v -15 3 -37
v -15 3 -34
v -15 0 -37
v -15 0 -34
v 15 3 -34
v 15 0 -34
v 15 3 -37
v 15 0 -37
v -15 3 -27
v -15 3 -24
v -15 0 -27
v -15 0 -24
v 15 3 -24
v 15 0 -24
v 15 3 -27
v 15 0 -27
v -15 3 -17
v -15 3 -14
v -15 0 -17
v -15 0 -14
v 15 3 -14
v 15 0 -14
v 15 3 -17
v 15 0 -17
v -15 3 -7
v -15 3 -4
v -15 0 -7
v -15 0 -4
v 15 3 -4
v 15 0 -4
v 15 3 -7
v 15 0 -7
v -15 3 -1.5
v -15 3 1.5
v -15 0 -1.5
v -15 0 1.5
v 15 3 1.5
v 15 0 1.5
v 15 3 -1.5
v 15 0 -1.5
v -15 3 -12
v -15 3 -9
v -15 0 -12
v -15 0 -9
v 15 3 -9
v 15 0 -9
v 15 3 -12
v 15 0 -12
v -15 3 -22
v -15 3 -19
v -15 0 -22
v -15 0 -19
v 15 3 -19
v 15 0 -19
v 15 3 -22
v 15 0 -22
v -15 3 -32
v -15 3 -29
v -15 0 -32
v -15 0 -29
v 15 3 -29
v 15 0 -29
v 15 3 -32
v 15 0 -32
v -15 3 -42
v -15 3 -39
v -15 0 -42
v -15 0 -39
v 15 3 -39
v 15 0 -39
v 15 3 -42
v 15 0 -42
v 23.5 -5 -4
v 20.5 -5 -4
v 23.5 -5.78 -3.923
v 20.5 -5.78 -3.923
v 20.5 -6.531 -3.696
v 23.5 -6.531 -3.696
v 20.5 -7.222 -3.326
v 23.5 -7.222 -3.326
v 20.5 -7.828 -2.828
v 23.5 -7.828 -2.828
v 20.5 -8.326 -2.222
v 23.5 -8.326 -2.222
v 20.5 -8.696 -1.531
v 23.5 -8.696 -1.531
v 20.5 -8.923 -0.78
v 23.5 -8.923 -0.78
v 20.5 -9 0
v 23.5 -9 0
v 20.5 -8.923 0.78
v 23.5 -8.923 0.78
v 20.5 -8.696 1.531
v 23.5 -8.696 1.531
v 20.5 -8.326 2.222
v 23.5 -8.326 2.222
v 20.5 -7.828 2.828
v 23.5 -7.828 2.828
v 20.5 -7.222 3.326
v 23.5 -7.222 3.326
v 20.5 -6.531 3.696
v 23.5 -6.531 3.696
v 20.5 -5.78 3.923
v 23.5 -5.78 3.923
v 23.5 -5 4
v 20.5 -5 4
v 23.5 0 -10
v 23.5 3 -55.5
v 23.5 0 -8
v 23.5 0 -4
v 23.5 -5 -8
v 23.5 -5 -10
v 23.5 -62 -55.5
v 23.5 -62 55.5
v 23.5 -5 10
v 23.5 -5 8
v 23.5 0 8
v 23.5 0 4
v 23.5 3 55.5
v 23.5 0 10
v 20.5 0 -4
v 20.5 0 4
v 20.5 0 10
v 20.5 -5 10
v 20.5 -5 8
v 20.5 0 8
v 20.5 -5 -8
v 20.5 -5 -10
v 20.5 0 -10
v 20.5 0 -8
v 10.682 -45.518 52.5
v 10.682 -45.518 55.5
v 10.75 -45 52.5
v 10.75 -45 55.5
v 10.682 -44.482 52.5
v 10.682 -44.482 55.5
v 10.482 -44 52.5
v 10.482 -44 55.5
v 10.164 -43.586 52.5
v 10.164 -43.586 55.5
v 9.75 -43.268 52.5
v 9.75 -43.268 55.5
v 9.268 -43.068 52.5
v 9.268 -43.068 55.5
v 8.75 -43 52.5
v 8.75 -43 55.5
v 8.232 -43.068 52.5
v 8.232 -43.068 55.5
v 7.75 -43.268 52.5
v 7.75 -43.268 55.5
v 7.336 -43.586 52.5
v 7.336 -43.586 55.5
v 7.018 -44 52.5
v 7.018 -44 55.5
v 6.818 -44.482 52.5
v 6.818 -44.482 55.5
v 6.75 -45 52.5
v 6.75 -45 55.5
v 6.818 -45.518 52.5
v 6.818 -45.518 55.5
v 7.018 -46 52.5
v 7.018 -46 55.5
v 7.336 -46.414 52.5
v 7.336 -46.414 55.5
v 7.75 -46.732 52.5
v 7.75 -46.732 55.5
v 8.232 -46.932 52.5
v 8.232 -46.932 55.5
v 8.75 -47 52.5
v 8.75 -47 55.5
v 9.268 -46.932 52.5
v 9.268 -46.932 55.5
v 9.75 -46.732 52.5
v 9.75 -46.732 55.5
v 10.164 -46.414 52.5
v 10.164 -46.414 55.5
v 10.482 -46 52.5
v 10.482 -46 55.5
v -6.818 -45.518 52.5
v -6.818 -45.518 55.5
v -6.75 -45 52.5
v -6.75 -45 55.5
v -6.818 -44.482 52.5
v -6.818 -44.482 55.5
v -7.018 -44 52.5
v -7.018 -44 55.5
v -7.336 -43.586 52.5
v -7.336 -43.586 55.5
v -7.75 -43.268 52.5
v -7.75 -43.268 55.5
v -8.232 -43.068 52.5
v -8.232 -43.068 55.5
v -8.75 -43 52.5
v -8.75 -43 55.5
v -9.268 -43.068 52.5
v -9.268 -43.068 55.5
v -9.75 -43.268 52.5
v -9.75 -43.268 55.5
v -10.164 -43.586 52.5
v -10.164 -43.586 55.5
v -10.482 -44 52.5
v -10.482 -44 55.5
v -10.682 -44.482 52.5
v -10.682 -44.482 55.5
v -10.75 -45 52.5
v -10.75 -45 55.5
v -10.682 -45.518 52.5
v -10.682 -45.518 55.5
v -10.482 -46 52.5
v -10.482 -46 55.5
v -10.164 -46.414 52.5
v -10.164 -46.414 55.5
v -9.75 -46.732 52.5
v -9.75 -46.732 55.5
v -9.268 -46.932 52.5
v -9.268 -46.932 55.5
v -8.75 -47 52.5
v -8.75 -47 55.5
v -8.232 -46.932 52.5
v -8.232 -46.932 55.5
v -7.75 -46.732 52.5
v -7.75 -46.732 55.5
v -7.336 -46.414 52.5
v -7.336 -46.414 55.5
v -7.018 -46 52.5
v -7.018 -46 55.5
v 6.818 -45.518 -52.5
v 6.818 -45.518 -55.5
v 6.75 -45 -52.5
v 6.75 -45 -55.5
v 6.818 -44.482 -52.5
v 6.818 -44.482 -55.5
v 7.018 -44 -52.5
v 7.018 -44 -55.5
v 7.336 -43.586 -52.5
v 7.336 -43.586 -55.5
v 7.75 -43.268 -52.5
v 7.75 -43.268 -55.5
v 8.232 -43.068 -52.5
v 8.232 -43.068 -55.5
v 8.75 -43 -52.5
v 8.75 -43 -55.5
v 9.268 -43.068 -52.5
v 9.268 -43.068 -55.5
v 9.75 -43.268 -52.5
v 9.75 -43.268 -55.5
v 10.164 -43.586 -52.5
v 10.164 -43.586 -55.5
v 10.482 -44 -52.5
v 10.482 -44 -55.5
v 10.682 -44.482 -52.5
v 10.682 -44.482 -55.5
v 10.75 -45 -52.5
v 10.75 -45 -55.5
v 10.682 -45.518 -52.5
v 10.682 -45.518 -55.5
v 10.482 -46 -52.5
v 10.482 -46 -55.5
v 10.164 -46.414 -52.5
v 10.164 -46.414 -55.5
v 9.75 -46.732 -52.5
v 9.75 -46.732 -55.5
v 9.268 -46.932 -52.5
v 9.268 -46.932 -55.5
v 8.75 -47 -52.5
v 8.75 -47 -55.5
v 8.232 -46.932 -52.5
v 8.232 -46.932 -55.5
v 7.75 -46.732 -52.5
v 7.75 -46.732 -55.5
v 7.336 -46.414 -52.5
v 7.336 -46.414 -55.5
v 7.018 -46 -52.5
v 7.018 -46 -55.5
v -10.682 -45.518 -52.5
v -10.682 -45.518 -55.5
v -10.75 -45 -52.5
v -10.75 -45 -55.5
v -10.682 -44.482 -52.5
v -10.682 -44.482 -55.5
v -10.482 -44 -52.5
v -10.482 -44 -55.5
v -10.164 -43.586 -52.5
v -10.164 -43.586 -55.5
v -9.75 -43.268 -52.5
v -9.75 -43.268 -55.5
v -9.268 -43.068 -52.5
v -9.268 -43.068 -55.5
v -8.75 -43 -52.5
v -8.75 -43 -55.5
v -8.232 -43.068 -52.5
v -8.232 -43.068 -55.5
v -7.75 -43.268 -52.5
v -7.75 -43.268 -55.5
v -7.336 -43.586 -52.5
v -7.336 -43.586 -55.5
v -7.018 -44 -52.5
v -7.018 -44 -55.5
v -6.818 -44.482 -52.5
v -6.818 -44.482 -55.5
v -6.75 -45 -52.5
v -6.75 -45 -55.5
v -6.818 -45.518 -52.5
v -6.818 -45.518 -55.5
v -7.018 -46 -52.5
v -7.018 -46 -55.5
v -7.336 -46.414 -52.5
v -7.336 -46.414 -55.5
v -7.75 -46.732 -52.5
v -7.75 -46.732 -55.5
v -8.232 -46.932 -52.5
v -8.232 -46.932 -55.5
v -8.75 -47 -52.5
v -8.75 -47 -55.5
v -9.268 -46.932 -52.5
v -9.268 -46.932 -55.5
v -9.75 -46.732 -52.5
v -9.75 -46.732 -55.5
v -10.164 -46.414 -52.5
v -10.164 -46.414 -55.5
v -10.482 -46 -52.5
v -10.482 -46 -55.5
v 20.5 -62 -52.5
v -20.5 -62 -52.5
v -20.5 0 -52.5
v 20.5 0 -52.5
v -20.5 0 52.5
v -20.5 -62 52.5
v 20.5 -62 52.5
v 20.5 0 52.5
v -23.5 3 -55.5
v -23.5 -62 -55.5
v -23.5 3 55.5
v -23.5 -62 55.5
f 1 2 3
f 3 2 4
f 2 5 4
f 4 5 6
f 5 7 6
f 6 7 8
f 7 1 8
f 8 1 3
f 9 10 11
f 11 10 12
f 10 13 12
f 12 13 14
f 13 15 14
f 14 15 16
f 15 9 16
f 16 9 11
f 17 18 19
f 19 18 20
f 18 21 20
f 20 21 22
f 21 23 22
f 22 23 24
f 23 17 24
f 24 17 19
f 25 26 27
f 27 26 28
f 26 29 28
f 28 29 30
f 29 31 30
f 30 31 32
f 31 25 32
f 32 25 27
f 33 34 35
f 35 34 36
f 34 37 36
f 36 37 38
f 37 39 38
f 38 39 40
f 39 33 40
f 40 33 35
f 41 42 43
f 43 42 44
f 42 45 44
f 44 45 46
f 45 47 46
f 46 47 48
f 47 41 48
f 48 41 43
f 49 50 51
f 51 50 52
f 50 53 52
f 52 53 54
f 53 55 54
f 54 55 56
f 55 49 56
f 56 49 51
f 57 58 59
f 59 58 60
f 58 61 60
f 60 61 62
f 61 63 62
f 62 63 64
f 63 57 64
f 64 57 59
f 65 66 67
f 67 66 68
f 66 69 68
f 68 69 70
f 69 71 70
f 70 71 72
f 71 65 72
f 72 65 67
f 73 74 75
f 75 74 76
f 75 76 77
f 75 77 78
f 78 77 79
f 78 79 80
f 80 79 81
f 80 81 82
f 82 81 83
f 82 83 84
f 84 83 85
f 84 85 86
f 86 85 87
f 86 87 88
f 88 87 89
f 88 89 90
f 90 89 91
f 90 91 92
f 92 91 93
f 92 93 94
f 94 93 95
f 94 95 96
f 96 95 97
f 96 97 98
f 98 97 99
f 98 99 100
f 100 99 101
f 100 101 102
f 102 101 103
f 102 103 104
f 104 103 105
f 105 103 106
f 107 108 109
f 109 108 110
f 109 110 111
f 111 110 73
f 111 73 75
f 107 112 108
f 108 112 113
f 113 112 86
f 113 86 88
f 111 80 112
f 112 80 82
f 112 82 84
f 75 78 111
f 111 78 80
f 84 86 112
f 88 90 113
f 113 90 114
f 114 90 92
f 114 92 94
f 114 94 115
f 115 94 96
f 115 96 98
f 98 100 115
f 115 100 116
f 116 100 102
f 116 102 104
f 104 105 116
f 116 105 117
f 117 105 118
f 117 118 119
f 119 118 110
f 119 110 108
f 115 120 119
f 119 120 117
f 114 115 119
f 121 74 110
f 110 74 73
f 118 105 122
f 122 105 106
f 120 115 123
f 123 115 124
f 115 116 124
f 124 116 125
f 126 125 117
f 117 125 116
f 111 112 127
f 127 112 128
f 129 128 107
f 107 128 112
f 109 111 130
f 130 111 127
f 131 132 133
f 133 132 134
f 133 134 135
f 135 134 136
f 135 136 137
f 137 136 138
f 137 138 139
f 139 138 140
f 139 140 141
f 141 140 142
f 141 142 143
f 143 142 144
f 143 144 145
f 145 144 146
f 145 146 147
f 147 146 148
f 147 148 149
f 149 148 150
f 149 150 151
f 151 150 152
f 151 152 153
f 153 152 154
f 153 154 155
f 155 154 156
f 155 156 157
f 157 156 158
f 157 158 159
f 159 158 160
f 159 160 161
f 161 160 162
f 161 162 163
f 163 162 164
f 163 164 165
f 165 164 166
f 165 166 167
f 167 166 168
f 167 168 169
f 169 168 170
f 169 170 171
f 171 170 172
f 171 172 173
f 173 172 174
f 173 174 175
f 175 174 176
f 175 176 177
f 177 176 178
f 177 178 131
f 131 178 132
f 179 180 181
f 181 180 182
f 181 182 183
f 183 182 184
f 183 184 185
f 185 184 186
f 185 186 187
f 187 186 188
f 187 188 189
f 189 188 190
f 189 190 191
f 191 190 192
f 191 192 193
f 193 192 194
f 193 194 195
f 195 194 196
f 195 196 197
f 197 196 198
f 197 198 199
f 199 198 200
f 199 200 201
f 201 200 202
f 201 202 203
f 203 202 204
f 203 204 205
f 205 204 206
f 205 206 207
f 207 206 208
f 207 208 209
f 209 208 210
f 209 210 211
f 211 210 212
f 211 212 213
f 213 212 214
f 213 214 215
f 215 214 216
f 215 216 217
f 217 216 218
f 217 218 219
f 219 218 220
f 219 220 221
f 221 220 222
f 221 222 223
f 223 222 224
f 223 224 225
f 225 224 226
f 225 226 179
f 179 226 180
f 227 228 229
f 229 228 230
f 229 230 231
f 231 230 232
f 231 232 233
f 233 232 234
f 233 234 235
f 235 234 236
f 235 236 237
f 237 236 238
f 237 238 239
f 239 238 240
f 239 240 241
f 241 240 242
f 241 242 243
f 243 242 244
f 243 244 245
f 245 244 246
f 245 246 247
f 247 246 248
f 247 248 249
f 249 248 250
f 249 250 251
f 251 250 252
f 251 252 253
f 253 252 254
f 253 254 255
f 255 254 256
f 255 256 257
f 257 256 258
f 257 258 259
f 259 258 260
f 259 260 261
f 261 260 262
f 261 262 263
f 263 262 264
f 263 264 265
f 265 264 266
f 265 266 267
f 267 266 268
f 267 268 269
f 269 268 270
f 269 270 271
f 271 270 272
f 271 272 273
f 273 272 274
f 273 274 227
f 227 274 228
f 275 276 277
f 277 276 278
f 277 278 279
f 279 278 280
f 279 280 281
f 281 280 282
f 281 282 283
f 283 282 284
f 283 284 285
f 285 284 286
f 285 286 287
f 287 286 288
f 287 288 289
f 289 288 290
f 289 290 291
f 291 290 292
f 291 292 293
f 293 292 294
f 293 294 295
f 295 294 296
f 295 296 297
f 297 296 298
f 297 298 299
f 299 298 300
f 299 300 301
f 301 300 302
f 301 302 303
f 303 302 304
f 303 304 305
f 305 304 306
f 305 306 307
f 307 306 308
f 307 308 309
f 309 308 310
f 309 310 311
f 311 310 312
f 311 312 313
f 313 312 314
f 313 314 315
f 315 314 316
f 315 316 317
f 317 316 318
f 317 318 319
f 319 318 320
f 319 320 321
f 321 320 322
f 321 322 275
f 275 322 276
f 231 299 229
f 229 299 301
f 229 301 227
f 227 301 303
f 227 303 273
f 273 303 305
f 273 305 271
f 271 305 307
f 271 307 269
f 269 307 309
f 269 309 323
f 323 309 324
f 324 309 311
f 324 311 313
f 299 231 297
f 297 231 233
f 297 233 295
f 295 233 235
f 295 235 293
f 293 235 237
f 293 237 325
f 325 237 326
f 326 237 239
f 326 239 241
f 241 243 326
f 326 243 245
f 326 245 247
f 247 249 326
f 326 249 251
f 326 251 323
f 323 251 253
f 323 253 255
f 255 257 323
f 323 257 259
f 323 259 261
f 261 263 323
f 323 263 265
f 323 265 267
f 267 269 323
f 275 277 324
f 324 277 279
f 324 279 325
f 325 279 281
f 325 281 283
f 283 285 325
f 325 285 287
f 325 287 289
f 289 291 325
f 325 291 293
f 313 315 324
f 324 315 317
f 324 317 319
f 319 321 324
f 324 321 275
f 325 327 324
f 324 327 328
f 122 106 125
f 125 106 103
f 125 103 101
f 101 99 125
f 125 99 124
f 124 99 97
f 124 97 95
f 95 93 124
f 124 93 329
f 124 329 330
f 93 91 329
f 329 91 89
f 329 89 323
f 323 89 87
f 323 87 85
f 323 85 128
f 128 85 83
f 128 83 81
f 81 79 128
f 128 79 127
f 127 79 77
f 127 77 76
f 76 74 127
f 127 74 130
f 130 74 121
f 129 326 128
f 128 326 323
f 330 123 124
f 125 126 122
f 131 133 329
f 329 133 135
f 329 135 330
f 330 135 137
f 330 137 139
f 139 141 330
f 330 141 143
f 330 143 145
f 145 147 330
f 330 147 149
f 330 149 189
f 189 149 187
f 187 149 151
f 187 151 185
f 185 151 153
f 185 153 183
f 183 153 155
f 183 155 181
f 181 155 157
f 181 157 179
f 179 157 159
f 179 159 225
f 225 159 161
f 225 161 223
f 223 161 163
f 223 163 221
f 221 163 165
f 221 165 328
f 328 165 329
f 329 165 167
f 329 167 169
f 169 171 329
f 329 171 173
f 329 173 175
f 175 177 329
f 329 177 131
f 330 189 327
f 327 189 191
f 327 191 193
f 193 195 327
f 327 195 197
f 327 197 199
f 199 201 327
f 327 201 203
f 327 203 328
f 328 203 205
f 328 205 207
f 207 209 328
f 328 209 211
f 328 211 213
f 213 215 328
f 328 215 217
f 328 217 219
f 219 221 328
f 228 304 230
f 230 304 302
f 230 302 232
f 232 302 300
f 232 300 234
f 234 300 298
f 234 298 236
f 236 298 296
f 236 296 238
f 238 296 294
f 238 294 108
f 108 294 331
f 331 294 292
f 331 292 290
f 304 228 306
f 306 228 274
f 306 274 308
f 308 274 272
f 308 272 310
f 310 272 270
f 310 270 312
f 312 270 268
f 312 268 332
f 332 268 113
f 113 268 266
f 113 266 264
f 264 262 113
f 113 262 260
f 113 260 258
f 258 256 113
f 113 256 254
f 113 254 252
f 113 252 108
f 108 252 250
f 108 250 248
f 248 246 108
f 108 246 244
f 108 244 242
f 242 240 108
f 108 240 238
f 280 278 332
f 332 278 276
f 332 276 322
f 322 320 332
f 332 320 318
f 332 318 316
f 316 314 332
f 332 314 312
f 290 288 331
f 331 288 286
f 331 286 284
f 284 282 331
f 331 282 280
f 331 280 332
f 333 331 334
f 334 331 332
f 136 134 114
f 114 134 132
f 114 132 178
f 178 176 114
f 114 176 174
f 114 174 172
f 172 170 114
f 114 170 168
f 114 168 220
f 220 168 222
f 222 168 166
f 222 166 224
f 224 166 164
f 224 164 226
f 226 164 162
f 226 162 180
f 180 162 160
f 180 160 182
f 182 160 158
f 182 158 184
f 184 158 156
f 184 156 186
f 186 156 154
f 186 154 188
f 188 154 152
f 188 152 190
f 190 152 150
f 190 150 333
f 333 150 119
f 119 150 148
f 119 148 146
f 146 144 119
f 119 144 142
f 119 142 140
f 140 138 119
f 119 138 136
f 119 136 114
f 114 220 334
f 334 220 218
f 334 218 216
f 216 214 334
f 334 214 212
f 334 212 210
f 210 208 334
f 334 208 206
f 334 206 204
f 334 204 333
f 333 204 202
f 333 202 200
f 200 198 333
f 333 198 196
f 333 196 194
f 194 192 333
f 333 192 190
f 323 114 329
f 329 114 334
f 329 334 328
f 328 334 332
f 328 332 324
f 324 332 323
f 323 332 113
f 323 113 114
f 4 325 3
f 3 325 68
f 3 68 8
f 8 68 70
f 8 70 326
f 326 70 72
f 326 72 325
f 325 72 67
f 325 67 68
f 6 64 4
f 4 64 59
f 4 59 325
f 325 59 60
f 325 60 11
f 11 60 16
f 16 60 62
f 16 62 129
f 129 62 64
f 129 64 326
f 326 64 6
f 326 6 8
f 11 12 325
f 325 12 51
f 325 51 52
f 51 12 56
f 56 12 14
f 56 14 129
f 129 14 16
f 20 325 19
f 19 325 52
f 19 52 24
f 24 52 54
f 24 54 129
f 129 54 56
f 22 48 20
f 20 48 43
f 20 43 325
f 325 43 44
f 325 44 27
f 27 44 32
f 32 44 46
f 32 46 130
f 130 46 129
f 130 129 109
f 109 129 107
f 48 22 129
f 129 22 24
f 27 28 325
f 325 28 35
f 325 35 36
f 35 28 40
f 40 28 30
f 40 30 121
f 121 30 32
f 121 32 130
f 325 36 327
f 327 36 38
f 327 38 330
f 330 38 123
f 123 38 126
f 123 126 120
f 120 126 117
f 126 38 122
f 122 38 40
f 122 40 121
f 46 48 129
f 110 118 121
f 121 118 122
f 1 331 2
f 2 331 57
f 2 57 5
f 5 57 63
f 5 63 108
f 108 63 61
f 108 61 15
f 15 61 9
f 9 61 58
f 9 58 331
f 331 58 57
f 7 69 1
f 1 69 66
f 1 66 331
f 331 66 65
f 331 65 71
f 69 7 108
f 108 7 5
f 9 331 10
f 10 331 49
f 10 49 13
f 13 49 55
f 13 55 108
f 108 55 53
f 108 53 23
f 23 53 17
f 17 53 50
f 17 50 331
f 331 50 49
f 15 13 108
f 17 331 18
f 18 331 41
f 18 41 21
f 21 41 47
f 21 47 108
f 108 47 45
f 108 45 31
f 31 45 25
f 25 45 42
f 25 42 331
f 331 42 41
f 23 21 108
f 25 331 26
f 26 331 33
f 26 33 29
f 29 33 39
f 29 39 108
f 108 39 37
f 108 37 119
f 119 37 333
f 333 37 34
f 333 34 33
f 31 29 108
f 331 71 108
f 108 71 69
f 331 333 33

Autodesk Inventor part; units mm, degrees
ref_plane "YZ Plane" through (0, 0, 0) normal (1, 0, 0) x (0, 1, 0)
ref_plane "XZ Plane" through (0, 0, 0) normal (0, 1, 0) x (-1, 0, 0)
ref_plane "XY Plane" through (0, 0, 0) normal (0, 0, 1) x (1, 0, 0)
sketch "Sketch1" plane through (0, 0, 0) normal (0, 1, 0) x (-1, 0, 0)
  line L0 (-20.5, 52.5) -> (20.5, 52.5)
  line L1 (20.5, 52.5) -> (20.5, -52.5)
  line L2 (20.5, -52.5) -> (-20.5, -52.5)
  line L3 (-20.5, -52.5) -> (-20.5, 52.5)
  line L4 (-20.5, 52.5) -> (20.5, -52.5) construction
  line L5 (20.5, 52.5) -> (-20.5, -52.5) construction
  line L6 (-23.5, 55.5) -> (23.5, 55.5)
  line L7 (23.5, 55.5) -> (23.5, -55.5)
  line L8 (23.5, -55.5) -> (-23.5, -55.5)
  line L9 (-23.5, -55.5) -> (-23.5, 55.5)
  line L10 (-23.5, 55.5) -> (23.5, -55.5) construction
  line L11 (23.5, 55.5) -> (-23.5, -55.5) construction
  point P0 (0, 0)
  dimension "d0" = 41
  dimension "d1" = 105
  dimension "d4" = 47
  dimension "d5" = 111
extrude "Extrusion1" add sketch "Sketch1" along normal blind 3 contours L0 L1 L2 L3
sketch "Sketch3" plane through (0, 3, 0) normal (0, 1, 0) x (1, 0, 0)
  line L0 (23.5, -55.5) -> (-23.5, -55.5)
  line L1 (-23.5, -55.5) -> (-23.5, 55.5)
  line L2 (-23.5, 55.5) -> (23.5, 55.5)
  line L3 (23.5, 55.5) -> (23.5, -55.5)
  line L4 (23.5, -55.5) -> (-23.5, 55.5) construction
  line L5 (-23.5, -55.5) -> (23.5, 55.5) construction
  line L6 (20.5, 52.5) -> (-20.5, 52.5) projected
  line L7 (20.5, -52.5) -> (-20.5, -52.5)
  line L8 (-20.5, -52.5) -> (-20.5, 52.5)
  line L9 (-20.5, 52.5) -> (20.5, 52.5)
  line L10 (20.5, 52.5) -> (20.5, -52.5)
  line L11 (20.5, -52.5) -> (-20.5, 52.5) construction
  line L12 (-20.5, -52.5) -> (20.5, 52.5) construction
  point P0 (0, 0)
  dimension "d6" = 47
  dimension "d7" = 111
extrude "Extrusion3" add sketch "Sketch3" against normal blind 65
sketch "Sketch4" plane through (23.5, 3, -55.5) normal (0, 0, -1) x (-1, 0, 0)
  line L0 (0, 0) -> (23.5, 0) construction
  line L1 (23.5, 0) -> (23.5, -48) construction
  line L2 (23.5, -48) -> (14.75, -48) construction
  line L3 (23.5, -48) -> (32.25, -48) construction
  circle A0 centre (14.75, -48) radius 2
  circle A1 centre (32.25, -48) radius 2
  point P0 (23.5, -3)
  dimension "d12" = 23.5
  dimension "d13" = 48
  dimension "d14" = 8.75
  dimension "d15" = 8.75
  dimension "d16" = 4
  dimension "d17" = 4
extrude "Extrusion4" cut sketch "Sketch4" against normal blind 3
sketch "Sketch5" plane through (-23.5, 3, 55.5) normal (0, 0, 1) x (1, 0, 0)
  line L0 (47, 0) -> (47, -65) construction
  line L1 (47, 0) -> (23.5, 0) construction
  line L2 (0, 0) -> (47, 0) construction
  line L3 (23.5, 0) -> (23.5, -48) construction
  line L4 (23.5, 0) -> (71.5, 0) construction
  circle A0 centre (32.25, -48) radius 2 projected
  line L5 (23.5, -48) -> (32.25, -48) construction
  circle A1 centre (14.75, -48) radius 2 projected
  line L6 (23.5, -48) -> (14.75, -48) construction
  circle A2 centre (32.25, -48) radius 2 construction
  circle A3 centre (14.75, -48) radius 2 construction
  point P0 (23.5, -3)
  dimension "d20" = 23.5
  dimension "d21" = 48
  dimension "d22" = 90
extrude "Extrusion5" cut sketch "Sketch5" against normal blind 3
sketch "Sketch6" plane through (23.5, 3, 55.5) normal (1, 0, 0) x (0, 0, -1)
  line L0 (111, 0) -> (111, -65) construction
  line L1 (111, 0) -> (55.5, 0) construction
  line L2 (111, 0) -> (0, 0) construction
  line L3 (55.5, 0) -> (51.5, 0) construction
  line L4 (51.5, 0) -> (59.5, 0)
  line L5 (59.5, 0) -> (59.5, -8)
  line L6 (59.5, -8) -> (51.5, -8)
  line L7 (51.5, -8) -> (51.5, 0)
  line L8 (51.5, 0) -> (47.5, 0)
  line L9 (47.5, 0) -> (45.5, 0)
  line L10 (45.5, 0) -> (45.5, -8)
  line L11 (45.5, -8) -> (47.5, -8)
  line L12 (47.5, -8) -> (47.5, 0)
  line L13 (59.5, 0) -> (63.5, 0)
  line L14 (63.5, 0) -> (65.5, 0)
  line L15 (65.5, 0) -> (65.5, -8)
  line L16 (65.5, -8) -> (63.5, -8)
  line L17 (63.5, -8) -> (63.5, 0)
  point P0 (55.5, -3)
  dimension "d25" = 55.5
  dimension "d26" = 4
  dimension "d27" = 8
  dimension "d28" = 8
  dimension "d29" = 4
  dimension "d30" = 2
  dimension "d31" = 4
  dimension "d32" = 2
  dimension "d33" = 8
extrude "Extrusion6" cut sketch "Sketch6" against normal blind 3
sketch "Sketch7" plane through (20.5, 3, 55.5) normal (1, 0, 0) x (0, 0, -1)
  point P0 (55.5, -3)
sketch "Sketch8" plane through (20.5, 3, 55.5) normal (1, 0, 0) x (0, 0, -1)
  line L0 (65.5, 0) -> (65.5, -3) projected
  line L1 (63.5, -3) -> (59.5, -3) projected
  line L2 (65.5, 0) -> (63.5, 0)
  line L3 (63.5, 0) -> (63.5, -3)
  line L4 (63.5, -3) -> (65.5, -3)
  line L5 (65.5, -3) -> (65.5, 0)
  line L6 (51.5, 0) -> (59.5, 0) projected
  line L7 (51.5, -3) -> (51.5, 0) projected
  line L8 (59.5, 0) -> (51.5, 0)
  line L9 (51.5, 0) -> (51.5, -3)
  line L10 (51.5, -3) -> (59.5, -3)
  line L11 (59.5, -3) -> (59.5, 0)
  line L12 (51.5, 0) -> (47.5, 0) projected
  line L13 (45.5, -8) -> (45.5, 0) projected
  line L14 (47.5, 0) -> (45.5, 0)
  line L15 (45.5, 0) -> (45.5, -3)
  line L16 (45.5, -3) -> (47.5, -3)
  line L17 (47.5, -3) -> (47.5, 0)
  point P0 (55.5, -3)
extrude "Extrusion7" add sketch "Sketch8" along normal blind 3
sketch "Sketch9" plane through (23.5, 3, 55.5) normal (1, 0, 0) x (0, 0, -1)
  line L0 (59.5, -8) -> (51.5, -8) projected
  circle A0 centre (55.5, -8) radius 4
  point P0 (55.5, -3)
  dimension "d38" = 8
extrude "Extrusion8" cut sketch "Sketch9" against normal blind 3
sketch "Sketch10" plane through (0, 3, 0) normal (0, 1, 0) x (1, 0, 0)
  line L0 (-23.5, 55.5) -> (23.5, 55.5) projected
  line L1 (0, 55.5) -> (0, 40.5) construction
  line L2 (0, 40.5) -> (0, 35.5) construction
  line L3 (0, 35.5) -> (0, 30.5) construction
  line L4 (0, 30.5) -> (0, 25.5) construction
  line L5 (0, 25.5) -> (0, 20.5) construction
  line L6 (0, 20.5) -> (0, 15.5) construction
  line L7 (0, 15.5) -> (0, 10.5) construction
  line L8 (0, 10.5) -> (0, 5.5) construction
  line L9 (0, 5.5) -> (0, 0.5) construction
  line L10 (-15, 1.5) -> (15, 1.5)
  line L11 (15, 1.5) -> (15, -1.5)
  line L12 (15, -1.5) -> (-15, -1.5)
  line L13 (-15, -1.5) -> (-15, 1.5)
  line L14 (-15, 1.5) -> (15, -1.5) construction
  line L15 (15, 1.5) -> (-15, -1.5) construction
  line L16 (-15, 7) -> (15, 7)
  line L17 (15, 7) -> (15, 4)
  line L18 (15, 4) -> (-15, 4)
  line L19 (-15, 4) -> (-15, 7)
  line L20 (-15, 7) -> (15, 4) construction
  line L21 (15, 7) -> (-15, 4) construction
  line L22 (-15, 12) -> (15, 12)
  line L23 (15, 12) -> (15, 9)
  line L24 (15, 9) -> (-15, 9)
  line L25 (-15, 9) -> (-15, 12)
  line L26 (-15, 12) -> (15, 9) construction
  line L27 (15, 12) -> (-15, 9) construction
  line L28 (-15, 17) -> (15, 17)
  line L29 (15, 17) -> (15, 14)
  line L30 (15, 14) -> (-15, 14)
  line L31 (-15, 14) -> (-15, 17)
  line L32 (-15, 17) -> (15, 14) construction
  line L33 (15, 17) -> (-15, 14) construction
  line L34 (-15, 22) -> (15, 22)
  line L35 (15, 22) -> (15, 19)
  line L36 (15, 19) -> (-15, 19)
  line L37 (-15, 19) -> (-15, 22)
  line L38 (-15, 22) -> (15, 19) construction
  line L39 (15, 22) -> (-15, 19) construction
  line L40 (-15, 27) -> (15, 27)
  line L41 (15, 27) -> (15, 24)
  line L42 (15, 24) -> (-15, 24)
  line L43 (-15, 24) -> (-15, 27)
  line L44 (-15, 27) -> (15, 24) construction
  line L45 (15, 27) -> (-15, 24) construction
  line L46 (-15, 32) -> (15, 32)
  line L47 (15, 32) -> (15, 29)
  line L48 (15, 29) -> (-15, 29)
  line L49 (-15, 29) -> (-15, 32)
  line L50 (-15, 32) -> (15, 29) construction
  line L51 (15, 32) -> (-15, 29) construction
  line L52 (-15, 37) -> (15, 37)
  line L53 (15, 37) -> (15, 34)
  line L54 (15, 34) -> (-15, 34)
  line L55 (-15, 34) -> (-15, 37)
  line L56 (-15, 37) -> (15, 34) construction
  line L57 (15, 37) -> (-15, 34) construction
  line L58 (-15, 42) -> (15, 42)
  line L59 (15, 42) -> (15, 39)
  line L60 (15, 39) -> (-15, 39)
  line L61 (-15, 39) -> (-15, 42)
  line L62 (-15, 42) -> (15, 39) construction
  line L63 (15, 42) -> (-15, 39) construction
  point P0 (0, 0)
  dimension "d41" = 15
  dimension "d42" = 5
  dimension "d43" = 5
  dimension "d44" = 5
  dimension "d45" = 5
  dimension "d46" = 5
  dimension "d47" = 5
  dimension "d48" = 5
  dimension "d49" = 5
  dimension "d50" = 30
  dimension "d51" = 3
  dimension "d52" = 30
  dimension "d53" = 3
  dimension "d54" = 30
  dimension "d55" = 3
  dimension "d56" = 30
  dimension "d57" = 3
  dimension "d58" = 30
  dimension "d59" = 3
  dimension "d60" = 30
  dimension "d61" = 3
  dimension "d62" = 30
  dimension "d63" = 3
  dimension "d64" = 30
  dimension "d65" = 3
  dimension "d66" = 30
  dimension "d67" = 3
extrude "Extrusion9" cut sketch "Sketch10" against normal blind 3
properties part number "netzteil_case"
